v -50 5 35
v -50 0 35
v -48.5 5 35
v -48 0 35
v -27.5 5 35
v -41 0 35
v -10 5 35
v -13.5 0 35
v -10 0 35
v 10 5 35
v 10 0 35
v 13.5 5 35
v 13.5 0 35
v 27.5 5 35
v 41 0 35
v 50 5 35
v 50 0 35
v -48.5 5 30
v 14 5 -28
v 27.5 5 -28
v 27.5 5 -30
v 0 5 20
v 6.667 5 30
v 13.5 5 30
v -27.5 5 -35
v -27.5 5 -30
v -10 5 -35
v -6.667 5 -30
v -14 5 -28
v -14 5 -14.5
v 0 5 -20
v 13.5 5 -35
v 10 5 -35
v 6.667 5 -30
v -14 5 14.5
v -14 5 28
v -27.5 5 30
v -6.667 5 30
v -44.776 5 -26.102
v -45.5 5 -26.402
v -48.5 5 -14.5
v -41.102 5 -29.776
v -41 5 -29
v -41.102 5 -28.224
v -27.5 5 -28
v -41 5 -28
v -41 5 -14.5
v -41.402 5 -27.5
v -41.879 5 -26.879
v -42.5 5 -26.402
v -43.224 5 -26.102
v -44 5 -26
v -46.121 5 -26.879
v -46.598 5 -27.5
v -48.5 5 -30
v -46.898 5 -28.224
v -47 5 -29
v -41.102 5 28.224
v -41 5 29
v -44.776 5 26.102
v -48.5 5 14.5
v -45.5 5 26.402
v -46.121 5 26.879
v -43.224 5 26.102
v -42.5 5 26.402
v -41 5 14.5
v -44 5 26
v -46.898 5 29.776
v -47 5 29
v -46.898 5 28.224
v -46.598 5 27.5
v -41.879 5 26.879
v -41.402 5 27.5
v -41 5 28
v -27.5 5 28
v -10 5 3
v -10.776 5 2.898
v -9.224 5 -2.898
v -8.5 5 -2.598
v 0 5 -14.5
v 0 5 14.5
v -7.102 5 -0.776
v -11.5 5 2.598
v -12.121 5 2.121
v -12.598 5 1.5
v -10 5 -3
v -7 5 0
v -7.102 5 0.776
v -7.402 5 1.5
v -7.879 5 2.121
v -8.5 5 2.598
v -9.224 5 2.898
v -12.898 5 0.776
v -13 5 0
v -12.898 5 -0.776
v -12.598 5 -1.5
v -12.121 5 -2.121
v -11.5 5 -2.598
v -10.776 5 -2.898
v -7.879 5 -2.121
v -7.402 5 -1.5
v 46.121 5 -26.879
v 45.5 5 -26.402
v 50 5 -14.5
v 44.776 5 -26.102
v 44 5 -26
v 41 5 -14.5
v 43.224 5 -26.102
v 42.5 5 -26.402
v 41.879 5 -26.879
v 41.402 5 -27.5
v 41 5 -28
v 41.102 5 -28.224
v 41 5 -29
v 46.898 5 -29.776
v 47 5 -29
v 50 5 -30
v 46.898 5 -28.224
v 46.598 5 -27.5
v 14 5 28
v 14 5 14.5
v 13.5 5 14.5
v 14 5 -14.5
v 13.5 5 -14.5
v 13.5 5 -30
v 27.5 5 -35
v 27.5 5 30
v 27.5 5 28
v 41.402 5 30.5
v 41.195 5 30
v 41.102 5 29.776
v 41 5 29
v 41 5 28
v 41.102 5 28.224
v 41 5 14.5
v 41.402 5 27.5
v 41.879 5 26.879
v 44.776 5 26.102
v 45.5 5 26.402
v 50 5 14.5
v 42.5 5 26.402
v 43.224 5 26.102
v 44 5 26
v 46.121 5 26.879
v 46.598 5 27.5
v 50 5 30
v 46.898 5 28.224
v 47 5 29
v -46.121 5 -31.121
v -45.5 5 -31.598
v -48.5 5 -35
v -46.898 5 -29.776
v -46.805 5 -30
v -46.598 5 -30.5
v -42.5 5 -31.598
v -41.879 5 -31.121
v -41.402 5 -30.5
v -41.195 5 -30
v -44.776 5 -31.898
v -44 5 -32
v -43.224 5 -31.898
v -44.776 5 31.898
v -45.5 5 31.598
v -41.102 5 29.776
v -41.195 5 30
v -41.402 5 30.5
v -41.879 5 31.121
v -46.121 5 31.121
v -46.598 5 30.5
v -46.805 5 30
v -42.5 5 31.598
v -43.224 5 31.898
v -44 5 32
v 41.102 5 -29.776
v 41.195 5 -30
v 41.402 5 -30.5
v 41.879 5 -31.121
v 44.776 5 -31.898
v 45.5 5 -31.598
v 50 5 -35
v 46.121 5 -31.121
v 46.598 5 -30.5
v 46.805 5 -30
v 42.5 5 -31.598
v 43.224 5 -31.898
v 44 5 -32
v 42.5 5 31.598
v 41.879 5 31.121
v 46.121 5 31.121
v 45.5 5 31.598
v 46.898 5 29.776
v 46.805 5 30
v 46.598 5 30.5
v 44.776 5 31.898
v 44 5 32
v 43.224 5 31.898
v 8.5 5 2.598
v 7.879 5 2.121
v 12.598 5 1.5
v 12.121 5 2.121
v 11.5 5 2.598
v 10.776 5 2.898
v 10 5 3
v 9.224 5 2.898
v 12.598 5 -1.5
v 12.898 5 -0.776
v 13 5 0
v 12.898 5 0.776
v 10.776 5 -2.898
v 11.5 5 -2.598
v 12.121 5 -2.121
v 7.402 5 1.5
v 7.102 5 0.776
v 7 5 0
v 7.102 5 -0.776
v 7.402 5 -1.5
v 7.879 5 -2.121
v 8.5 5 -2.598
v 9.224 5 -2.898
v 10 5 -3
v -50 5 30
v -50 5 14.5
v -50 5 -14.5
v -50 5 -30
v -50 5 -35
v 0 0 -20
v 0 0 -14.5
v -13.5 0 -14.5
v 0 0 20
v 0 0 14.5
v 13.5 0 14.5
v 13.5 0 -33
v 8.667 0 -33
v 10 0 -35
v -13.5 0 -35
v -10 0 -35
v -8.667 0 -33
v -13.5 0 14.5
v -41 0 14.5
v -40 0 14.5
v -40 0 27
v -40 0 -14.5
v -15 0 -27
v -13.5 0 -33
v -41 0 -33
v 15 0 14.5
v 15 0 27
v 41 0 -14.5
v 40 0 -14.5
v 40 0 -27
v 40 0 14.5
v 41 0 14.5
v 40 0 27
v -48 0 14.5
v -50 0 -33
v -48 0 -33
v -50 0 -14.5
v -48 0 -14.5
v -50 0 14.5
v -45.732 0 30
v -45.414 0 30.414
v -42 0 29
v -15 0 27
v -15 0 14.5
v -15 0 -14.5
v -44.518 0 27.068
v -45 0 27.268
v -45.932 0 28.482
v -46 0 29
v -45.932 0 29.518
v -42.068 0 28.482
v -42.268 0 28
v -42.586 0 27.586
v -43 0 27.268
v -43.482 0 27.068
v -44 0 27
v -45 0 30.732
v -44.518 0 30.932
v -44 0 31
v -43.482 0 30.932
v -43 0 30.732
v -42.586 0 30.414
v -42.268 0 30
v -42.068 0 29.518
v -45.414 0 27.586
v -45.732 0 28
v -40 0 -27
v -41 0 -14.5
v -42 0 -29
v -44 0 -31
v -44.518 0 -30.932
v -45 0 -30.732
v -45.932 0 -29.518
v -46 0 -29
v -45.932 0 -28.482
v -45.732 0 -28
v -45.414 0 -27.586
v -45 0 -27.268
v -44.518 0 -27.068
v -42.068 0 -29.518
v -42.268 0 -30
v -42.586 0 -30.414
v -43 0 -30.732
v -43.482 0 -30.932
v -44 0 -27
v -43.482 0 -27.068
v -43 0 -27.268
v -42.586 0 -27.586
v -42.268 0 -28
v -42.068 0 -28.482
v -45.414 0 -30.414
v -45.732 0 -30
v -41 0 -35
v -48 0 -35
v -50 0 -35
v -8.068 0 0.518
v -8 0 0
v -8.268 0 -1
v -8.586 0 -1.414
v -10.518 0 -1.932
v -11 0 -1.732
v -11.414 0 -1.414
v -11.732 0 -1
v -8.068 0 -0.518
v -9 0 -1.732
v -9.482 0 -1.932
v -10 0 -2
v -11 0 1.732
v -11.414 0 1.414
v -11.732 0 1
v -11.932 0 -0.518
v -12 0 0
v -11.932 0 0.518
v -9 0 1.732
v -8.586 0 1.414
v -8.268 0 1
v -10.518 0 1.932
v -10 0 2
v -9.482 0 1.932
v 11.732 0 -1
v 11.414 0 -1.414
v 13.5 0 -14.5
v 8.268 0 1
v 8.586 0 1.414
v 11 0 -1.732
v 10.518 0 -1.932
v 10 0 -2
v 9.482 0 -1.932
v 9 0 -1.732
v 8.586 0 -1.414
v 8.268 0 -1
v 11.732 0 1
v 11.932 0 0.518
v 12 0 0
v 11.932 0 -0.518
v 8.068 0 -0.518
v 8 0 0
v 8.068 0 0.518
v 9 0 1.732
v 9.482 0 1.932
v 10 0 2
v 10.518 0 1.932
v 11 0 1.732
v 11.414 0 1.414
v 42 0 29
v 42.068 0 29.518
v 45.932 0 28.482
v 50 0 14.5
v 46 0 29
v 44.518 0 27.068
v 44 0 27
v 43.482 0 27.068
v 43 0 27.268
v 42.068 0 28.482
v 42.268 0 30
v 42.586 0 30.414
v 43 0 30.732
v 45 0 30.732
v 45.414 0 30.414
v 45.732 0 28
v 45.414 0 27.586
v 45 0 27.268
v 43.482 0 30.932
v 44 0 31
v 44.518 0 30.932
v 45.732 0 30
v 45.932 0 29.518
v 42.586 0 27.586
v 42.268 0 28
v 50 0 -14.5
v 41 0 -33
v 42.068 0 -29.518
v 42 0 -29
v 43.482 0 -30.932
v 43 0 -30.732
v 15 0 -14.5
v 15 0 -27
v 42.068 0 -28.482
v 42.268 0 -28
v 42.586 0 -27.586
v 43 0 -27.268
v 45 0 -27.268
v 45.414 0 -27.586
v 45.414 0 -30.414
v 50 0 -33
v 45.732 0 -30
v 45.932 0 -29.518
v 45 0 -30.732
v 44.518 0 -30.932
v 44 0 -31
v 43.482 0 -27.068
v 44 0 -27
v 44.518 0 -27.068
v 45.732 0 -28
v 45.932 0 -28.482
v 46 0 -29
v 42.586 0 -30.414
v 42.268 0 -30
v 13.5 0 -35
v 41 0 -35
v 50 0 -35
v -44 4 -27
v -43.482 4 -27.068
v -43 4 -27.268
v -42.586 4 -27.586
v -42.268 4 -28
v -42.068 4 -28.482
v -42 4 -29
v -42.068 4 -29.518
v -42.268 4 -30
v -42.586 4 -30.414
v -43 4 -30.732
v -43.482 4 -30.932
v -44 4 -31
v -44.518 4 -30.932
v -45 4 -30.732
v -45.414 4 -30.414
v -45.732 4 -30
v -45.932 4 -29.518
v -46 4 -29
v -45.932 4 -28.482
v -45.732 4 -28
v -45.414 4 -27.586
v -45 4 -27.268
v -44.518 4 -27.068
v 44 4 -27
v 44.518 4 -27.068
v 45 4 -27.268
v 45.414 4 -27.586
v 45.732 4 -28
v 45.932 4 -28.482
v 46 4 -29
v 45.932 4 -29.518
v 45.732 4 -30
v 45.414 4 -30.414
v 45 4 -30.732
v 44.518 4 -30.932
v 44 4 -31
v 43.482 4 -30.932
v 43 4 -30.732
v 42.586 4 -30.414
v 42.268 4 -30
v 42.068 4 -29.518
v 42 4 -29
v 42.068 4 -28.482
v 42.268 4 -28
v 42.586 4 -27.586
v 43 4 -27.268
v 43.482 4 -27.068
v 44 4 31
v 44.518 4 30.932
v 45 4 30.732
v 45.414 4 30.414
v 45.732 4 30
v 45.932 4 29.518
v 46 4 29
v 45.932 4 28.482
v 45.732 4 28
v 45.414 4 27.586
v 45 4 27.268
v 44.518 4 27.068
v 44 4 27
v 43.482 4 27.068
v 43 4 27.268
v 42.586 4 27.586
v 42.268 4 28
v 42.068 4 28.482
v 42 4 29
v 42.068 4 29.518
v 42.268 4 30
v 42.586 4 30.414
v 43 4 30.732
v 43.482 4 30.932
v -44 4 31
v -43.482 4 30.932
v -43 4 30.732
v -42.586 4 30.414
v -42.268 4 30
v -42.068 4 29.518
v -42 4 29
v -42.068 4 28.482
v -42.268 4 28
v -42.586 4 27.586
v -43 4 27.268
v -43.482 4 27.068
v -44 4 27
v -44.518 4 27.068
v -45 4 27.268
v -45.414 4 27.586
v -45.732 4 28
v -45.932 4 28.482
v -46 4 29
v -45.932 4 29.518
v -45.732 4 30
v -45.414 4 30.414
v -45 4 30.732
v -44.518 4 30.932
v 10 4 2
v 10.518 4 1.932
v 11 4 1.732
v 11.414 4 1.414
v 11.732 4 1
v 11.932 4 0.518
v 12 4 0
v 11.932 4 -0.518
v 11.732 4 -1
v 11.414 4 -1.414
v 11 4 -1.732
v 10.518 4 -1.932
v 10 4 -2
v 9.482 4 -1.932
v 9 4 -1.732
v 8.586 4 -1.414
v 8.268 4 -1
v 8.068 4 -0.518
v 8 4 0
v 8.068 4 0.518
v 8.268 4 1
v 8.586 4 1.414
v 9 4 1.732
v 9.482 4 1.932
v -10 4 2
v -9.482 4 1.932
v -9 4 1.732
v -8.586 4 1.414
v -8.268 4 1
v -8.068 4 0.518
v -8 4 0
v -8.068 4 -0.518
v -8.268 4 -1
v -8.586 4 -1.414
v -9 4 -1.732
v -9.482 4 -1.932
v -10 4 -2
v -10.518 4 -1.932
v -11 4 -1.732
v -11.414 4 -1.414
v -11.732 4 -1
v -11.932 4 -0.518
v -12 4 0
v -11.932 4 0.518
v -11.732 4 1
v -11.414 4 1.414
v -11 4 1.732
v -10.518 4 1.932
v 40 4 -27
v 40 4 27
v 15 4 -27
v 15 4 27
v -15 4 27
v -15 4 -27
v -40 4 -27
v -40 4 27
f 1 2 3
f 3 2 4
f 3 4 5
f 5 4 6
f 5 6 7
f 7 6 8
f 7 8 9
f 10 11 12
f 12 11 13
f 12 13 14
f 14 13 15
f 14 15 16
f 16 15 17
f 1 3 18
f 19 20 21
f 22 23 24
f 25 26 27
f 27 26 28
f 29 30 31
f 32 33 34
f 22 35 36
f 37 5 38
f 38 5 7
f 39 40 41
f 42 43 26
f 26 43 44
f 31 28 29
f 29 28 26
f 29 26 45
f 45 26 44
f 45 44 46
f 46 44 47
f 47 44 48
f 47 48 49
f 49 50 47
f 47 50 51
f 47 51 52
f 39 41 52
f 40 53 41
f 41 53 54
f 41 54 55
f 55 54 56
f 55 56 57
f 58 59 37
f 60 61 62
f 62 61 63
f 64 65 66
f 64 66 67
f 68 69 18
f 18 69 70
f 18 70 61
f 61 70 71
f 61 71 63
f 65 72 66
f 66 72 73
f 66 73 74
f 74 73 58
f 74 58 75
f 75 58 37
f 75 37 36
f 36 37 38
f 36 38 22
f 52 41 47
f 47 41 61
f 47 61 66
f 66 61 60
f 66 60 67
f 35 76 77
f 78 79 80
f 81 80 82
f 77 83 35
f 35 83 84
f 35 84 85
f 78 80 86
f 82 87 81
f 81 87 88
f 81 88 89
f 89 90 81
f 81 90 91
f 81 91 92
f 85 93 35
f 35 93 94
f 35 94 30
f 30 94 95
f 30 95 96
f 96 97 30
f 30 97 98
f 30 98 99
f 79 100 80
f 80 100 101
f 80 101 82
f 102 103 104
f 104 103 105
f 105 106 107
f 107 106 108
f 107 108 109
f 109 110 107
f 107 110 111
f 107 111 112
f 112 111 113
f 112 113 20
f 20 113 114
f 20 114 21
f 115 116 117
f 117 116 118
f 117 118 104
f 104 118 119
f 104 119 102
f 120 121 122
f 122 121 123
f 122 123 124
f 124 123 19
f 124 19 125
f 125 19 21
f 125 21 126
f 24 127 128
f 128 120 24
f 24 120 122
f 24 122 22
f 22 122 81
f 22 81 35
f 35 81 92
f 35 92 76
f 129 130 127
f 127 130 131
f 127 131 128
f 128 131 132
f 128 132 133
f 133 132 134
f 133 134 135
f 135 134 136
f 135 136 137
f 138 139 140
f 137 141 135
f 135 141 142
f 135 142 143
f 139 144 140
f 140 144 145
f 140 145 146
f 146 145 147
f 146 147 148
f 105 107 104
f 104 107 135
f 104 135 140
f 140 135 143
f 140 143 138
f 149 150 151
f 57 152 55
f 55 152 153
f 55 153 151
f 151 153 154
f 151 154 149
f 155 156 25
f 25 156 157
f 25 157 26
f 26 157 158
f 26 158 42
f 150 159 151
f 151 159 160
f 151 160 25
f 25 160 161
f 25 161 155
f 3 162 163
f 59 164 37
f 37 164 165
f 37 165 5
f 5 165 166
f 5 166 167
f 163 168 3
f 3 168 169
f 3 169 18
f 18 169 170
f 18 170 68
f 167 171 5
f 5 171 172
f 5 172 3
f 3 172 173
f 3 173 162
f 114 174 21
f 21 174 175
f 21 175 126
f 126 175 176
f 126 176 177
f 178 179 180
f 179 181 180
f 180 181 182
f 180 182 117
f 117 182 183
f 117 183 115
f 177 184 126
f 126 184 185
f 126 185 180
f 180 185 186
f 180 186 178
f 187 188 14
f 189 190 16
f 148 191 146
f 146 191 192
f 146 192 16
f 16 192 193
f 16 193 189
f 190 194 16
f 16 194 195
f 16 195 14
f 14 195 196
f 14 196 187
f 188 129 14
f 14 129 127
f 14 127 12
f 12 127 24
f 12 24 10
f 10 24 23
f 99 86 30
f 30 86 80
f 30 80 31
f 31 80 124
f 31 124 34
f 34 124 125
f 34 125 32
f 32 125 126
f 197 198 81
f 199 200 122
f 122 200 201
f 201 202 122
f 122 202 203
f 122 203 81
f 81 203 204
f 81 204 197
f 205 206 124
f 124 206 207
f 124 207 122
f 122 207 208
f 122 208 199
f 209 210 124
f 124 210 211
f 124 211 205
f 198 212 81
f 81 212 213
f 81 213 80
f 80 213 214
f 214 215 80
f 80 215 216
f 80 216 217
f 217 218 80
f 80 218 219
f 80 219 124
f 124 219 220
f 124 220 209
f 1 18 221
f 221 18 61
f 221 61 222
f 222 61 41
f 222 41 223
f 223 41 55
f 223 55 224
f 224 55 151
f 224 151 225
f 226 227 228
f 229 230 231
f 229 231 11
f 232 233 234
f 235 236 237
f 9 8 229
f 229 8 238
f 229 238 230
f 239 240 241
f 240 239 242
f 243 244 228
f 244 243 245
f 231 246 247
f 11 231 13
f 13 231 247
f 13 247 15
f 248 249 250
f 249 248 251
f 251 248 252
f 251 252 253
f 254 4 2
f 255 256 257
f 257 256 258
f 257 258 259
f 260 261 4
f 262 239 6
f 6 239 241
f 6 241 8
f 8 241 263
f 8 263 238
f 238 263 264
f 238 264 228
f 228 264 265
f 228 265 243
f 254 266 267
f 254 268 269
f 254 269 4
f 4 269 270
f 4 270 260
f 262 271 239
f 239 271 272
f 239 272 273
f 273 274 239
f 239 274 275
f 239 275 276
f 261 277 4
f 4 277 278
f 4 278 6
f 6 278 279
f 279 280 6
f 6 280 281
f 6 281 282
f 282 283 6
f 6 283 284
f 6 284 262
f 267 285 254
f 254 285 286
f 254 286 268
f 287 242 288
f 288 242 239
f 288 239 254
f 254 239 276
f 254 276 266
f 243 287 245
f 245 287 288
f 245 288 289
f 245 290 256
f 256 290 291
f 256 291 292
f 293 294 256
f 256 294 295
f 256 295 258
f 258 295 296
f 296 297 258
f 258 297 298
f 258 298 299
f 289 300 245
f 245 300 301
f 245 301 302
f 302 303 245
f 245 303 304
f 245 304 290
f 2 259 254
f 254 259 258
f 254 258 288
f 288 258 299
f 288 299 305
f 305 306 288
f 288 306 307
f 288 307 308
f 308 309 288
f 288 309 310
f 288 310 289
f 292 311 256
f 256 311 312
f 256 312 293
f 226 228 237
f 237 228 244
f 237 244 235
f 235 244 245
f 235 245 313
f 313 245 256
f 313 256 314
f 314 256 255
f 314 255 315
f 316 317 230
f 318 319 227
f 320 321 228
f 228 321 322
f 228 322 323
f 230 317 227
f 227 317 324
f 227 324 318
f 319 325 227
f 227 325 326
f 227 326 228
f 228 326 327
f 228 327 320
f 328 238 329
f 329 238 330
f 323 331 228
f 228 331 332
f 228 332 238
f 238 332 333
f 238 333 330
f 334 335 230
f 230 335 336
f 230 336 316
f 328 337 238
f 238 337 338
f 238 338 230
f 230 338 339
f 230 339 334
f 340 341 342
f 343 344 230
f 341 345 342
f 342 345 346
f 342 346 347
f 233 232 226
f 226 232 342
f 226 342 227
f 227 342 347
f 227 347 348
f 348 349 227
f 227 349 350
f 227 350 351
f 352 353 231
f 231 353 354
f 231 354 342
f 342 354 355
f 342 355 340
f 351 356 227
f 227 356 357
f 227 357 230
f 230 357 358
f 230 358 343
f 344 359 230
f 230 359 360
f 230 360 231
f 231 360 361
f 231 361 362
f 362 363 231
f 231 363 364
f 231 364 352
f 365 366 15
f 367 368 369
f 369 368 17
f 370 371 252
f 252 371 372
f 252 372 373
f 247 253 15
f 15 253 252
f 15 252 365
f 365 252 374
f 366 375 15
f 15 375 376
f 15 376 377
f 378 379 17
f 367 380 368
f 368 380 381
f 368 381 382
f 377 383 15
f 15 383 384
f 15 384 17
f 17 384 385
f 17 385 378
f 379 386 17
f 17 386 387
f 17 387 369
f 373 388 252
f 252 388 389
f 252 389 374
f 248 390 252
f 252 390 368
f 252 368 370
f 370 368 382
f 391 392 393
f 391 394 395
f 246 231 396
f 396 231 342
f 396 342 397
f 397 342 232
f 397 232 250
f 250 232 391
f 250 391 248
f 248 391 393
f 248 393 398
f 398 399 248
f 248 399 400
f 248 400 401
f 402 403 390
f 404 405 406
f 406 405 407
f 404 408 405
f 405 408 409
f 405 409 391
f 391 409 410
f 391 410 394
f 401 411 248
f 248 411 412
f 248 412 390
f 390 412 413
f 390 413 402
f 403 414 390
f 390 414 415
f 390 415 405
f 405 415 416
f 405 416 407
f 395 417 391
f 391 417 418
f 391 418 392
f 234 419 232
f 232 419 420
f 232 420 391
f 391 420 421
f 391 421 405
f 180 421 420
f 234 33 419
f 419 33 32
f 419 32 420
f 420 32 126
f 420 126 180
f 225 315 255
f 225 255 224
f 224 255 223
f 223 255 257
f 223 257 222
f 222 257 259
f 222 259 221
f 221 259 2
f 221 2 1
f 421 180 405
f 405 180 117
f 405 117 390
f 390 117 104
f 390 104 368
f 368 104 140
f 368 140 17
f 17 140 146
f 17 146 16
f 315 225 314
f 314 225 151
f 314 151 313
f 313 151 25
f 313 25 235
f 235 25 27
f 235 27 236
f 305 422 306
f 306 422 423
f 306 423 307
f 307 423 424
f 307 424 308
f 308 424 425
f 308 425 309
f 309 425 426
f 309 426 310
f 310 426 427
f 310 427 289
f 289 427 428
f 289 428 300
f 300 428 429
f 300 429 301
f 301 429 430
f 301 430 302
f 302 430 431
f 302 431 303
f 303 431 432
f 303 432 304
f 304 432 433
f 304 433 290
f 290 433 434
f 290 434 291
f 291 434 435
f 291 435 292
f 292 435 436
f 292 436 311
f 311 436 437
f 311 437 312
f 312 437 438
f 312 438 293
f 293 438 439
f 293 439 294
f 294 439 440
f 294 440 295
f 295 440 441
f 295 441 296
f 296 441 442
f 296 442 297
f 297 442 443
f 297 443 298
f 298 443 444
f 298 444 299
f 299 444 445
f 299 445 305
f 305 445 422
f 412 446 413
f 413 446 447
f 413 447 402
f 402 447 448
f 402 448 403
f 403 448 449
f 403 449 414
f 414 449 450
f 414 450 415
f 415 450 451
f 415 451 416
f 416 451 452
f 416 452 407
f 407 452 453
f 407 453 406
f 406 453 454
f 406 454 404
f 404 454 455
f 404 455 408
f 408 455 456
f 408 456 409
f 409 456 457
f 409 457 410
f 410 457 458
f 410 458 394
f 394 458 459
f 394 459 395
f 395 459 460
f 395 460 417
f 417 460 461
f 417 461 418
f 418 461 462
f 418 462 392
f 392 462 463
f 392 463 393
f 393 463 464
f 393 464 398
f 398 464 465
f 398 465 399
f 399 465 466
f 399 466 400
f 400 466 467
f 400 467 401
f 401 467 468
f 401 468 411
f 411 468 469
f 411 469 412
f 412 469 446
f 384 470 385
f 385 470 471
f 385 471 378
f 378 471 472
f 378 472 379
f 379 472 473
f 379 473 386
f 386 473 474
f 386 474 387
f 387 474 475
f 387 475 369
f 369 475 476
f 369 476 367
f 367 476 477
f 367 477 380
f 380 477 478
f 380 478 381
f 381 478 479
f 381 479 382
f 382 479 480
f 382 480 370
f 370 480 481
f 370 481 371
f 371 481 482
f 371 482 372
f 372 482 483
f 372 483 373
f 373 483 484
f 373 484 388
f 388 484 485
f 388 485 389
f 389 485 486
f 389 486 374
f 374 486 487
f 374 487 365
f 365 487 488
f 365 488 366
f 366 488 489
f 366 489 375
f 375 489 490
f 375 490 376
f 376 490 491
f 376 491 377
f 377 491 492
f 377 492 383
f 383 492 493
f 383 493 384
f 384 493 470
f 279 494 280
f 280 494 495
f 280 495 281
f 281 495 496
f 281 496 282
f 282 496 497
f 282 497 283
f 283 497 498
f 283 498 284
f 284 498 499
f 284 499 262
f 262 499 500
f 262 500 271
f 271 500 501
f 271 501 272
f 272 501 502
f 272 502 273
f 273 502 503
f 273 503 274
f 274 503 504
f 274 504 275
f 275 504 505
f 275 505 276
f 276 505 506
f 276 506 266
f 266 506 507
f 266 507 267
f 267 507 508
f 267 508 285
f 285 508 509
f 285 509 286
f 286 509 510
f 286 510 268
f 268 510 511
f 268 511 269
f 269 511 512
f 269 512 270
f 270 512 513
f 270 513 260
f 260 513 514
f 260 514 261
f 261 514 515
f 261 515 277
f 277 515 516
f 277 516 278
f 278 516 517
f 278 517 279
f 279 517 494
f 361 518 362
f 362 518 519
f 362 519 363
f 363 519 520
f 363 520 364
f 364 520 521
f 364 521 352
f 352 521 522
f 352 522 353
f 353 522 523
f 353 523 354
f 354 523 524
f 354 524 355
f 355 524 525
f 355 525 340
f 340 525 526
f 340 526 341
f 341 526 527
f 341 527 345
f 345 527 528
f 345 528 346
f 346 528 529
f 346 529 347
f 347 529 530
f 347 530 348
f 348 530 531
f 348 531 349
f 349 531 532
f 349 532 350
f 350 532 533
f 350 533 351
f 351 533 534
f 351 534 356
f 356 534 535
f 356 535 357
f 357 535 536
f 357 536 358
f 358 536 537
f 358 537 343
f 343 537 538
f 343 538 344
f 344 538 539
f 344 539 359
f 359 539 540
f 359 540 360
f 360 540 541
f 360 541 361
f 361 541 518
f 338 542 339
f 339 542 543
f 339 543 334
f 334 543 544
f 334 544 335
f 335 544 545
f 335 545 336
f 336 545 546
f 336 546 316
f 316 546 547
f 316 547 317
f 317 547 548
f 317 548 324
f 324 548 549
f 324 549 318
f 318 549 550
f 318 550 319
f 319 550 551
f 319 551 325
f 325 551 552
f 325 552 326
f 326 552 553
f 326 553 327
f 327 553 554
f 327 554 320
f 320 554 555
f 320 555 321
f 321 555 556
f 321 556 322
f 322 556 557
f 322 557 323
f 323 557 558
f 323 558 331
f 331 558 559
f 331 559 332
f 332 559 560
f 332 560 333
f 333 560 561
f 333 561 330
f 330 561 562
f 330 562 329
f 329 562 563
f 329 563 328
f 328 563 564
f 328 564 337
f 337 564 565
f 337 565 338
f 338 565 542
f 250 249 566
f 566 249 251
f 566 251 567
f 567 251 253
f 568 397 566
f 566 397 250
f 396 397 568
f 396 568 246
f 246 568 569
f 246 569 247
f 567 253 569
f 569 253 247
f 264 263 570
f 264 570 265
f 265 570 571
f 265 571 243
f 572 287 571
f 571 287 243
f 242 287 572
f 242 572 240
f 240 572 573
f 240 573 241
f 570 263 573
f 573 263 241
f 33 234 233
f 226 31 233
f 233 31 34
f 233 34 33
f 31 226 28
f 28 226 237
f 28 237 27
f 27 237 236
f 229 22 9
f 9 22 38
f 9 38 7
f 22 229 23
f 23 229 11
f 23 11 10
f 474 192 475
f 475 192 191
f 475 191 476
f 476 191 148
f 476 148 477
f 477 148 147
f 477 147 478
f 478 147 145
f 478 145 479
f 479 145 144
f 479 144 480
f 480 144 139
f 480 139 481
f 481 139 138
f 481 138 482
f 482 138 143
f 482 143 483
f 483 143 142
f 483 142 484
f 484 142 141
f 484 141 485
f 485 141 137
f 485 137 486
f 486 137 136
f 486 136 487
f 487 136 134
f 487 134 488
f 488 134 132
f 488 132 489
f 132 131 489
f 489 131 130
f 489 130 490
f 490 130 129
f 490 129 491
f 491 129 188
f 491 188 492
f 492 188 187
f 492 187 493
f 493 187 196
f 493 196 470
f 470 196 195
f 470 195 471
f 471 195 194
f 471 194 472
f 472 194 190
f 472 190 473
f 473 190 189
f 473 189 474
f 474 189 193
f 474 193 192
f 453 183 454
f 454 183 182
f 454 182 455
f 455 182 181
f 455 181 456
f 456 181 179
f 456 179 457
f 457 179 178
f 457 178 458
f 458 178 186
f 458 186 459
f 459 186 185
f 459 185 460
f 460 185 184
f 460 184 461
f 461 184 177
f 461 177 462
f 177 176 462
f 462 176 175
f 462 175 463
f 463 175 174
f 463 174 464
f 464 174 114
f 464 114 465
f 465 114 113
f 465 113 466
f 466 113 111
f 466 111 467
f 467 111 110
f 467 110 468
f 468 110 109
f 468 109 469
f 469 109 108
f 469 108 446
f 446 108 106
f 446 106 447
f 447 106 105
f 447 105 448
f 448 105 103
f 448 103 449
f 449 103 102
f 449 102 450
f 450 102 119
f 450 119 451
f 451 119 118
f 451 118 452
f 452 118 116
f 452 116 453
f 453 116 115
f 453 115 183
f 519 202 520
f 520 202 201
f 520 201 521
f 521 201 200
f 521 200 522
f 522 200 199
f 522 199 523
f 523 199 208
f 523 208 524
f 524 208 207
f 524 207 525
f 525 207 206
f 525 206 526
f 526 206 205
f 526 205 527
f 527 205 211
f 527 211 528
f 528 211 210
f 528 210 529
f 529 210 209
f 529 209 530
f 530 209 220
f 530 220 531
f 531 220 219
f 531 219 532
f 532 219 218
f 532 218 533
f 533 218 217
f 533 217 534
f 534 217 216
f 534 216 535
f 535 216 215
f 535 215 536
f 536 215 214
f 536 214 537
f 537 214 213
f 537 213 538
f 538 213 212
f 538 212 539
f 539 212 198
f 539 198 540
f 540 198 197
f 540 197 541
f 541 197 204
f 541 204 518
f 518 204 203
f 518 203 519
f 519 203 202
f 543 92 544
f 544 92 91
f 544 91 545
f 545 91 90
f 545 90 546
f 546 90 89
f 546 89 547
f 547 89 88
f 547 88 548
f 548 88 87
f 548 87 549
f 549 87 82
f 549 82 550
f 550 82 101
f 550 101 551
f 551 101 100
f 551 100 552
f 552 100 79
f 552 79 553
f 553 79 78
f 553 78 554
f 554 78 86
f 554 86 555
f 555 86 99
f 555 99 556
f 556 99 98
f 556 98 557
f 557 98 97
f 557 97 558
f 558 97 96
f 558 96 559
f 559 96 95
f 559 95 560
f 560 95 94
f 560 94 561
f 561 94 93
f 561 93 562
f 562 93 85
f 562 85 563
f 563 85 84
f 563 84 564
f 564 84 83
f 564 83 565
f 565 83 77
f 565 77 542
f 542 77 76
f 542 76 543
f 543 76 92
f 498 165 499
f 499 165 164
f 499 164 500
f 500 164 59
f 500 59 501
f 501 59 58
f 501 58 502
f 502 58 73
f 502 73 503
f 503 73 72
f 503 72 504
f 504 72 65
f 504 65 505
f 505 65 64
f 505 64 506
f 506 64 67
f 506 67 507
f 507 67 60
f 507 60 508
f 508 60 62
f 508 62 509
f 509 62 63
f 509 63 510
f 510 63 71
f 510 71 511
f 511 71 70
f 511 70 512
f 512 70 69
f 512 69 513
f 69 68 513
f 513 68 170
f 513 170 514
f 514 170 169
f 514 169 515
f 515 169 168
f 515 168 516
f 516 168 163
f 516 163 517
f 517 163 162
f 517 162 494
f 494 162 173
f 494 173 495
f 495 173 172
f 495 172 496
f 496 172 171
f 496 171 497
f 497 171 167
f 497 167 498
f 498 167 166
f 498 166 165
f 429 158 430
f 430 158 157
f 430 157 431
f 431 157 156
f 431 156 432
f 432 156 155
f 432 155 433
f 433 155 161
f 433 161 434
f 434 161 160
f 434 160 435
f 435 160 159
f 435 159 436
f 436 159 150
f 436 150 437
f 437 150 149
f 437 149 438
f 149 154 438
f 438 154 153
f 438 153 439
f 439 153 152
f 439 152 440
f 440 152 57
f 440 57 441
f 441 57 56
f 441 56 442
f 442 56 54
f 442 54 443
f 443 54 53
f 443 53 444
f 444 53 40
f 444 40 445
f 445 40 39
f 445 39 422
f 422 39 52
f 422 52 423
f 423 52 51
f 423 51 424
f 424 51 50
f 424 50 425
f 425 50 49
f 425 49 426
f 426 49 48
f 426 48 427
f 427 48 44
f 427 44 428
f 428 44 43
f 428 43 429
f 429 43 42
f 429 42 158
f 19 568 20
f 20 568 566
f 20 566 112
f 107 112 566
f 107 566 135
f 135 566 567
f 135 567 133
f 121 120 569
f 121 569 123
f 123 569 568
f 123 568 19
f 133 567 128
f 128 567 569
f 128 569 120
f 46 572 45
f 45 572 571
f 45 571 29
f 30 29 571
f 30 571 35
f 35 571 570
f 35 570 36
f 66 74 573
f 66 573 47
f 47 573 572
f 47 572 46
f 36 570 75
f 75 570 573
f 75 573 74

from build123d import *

# Parameters (mm, degrees)
CROQUIS1_W              = 100
CROQUIS1_H              = 70
SALIENTE_EXTRUIR1_DEPTH = 5
CROQUIS3_R              = 2
CORTAR_EXTRUIR2_DEPTH   = 6
CROQUIS6_R              = 2
CORTAR_EXTRUIR3_DEPTH   = 6
CROQUIS7_W              = 25
CROQUIS7_H              = 54
CORTAR_EXTRUIR4_DEPTH   = 6
CORTAR_EXTRUIR5_DEPTH   = 6
CHAFL_N1_SIZE           = 1


with BuildPart() as part:
    # Croquis1 → Saliente-Extruir1 (new body)
    with BuildSketch(Plane(origin=(0, 0, 0), x_dir=(1, 0, 0), z_dir=(0, 1, 0))):
        Rectangle(CROQUIS1_W, CROQUIS1_H)
    extrude(amount=SALIENTE_EXTRUIR1_DEPTH)

    # Croquis3 → Cortar-Extruir2 (cut, through all)
    with BuildSketch(Plane(origin=(0, 5, 0), x_dir=(1, 0, 0), z_dir=(0, 1, 0))):
        with Locations((-44, 29)):
            Circle(CROQUIS3_R)
        with Locations((44, 29)):
            Circle(CROQUIS3_R)
        with Locations((44, -29)):
            Circle(CROQUIS3_R)
        with Locations((-44, -29)):
            Circle(CROQUIS3_R)
    extrude(amount=-CORTAR_EXTRUIR2_DEPTH, mode=Mode.SUBTRACT)

    # Croquis6 → Cortar-Extruir3 (cut, through all)
    with BuildSketch(Plane(origin=(0, 5, 0), x_dir=(1, 0, 0), z_dir=(0, 1, 0))):
        with Locations((-10, 0)):
            Circle(CROQUIS6_R)
        with Locations((10, 0)):
            Circle(CROQUIS6_R)
    extrude(amount=-CORTAR_EXTRUIR3_DEPTH, mode=Mode.SUBTRACT)

    # Croquis7 → Cortar-Extruir4 (cut, through all)
    with BuildSketch(Plane.XZ):
        with Locations((-27.5, 0)):
            Rectangle(CROQUIS7_W, CROQUIS7_H)
        with Locations((27.5, 0)):
            Rectangle(CROQUIS7_W, CROQUIS7_H)
    extrude(amount=-CORTAR_EXTRUIR4_DEPTH, mode=Mode.SUBTRACT)

    # Croquis8 → Cortar-Extruir5 (cut, through all)
    with BuildSketch(Plane(origin=(0, 5, 0), x_dir=(1, 0, 0), z_dir=(0, 1, 0))):
        Polygon((-10, 35), (0, 20), (10, 35), align=None)
    cortar_extruir5 = extrude(amount=-CORTAR_EXTRUIR5_DEPTH, mode=Mode.SUBTRACT)

    # Simetría1: Cortar-Extruir5 across plane
    add(cortar_extruir5.mirror(Plane.XY), mode=Mode.SUBTRACT)

    # Chaflán1
    chafl_n1_edges = [part.edges().sort_by_distance(p)[0] for p in [
        (-46, 5, 29),
        (42, 5, 29),
        (42, 5, -29),
        (-46, 5, -29),
        (-12, 5, 0),
        (8, 5, 0),
        (-15, 5, 0),
        (-27.5, 5, -27),
        (-40, 5, 0),
        (-27.5, 5, 27),
        (40, 5, 0),
        (27.5, 5, -27),
        (15, 5, 0),
        (27.5, 5, 27),
    ]]
    chamfer(chafl_n1_edges, length=CHAFL_N1_SIZE)


solid = part.part
